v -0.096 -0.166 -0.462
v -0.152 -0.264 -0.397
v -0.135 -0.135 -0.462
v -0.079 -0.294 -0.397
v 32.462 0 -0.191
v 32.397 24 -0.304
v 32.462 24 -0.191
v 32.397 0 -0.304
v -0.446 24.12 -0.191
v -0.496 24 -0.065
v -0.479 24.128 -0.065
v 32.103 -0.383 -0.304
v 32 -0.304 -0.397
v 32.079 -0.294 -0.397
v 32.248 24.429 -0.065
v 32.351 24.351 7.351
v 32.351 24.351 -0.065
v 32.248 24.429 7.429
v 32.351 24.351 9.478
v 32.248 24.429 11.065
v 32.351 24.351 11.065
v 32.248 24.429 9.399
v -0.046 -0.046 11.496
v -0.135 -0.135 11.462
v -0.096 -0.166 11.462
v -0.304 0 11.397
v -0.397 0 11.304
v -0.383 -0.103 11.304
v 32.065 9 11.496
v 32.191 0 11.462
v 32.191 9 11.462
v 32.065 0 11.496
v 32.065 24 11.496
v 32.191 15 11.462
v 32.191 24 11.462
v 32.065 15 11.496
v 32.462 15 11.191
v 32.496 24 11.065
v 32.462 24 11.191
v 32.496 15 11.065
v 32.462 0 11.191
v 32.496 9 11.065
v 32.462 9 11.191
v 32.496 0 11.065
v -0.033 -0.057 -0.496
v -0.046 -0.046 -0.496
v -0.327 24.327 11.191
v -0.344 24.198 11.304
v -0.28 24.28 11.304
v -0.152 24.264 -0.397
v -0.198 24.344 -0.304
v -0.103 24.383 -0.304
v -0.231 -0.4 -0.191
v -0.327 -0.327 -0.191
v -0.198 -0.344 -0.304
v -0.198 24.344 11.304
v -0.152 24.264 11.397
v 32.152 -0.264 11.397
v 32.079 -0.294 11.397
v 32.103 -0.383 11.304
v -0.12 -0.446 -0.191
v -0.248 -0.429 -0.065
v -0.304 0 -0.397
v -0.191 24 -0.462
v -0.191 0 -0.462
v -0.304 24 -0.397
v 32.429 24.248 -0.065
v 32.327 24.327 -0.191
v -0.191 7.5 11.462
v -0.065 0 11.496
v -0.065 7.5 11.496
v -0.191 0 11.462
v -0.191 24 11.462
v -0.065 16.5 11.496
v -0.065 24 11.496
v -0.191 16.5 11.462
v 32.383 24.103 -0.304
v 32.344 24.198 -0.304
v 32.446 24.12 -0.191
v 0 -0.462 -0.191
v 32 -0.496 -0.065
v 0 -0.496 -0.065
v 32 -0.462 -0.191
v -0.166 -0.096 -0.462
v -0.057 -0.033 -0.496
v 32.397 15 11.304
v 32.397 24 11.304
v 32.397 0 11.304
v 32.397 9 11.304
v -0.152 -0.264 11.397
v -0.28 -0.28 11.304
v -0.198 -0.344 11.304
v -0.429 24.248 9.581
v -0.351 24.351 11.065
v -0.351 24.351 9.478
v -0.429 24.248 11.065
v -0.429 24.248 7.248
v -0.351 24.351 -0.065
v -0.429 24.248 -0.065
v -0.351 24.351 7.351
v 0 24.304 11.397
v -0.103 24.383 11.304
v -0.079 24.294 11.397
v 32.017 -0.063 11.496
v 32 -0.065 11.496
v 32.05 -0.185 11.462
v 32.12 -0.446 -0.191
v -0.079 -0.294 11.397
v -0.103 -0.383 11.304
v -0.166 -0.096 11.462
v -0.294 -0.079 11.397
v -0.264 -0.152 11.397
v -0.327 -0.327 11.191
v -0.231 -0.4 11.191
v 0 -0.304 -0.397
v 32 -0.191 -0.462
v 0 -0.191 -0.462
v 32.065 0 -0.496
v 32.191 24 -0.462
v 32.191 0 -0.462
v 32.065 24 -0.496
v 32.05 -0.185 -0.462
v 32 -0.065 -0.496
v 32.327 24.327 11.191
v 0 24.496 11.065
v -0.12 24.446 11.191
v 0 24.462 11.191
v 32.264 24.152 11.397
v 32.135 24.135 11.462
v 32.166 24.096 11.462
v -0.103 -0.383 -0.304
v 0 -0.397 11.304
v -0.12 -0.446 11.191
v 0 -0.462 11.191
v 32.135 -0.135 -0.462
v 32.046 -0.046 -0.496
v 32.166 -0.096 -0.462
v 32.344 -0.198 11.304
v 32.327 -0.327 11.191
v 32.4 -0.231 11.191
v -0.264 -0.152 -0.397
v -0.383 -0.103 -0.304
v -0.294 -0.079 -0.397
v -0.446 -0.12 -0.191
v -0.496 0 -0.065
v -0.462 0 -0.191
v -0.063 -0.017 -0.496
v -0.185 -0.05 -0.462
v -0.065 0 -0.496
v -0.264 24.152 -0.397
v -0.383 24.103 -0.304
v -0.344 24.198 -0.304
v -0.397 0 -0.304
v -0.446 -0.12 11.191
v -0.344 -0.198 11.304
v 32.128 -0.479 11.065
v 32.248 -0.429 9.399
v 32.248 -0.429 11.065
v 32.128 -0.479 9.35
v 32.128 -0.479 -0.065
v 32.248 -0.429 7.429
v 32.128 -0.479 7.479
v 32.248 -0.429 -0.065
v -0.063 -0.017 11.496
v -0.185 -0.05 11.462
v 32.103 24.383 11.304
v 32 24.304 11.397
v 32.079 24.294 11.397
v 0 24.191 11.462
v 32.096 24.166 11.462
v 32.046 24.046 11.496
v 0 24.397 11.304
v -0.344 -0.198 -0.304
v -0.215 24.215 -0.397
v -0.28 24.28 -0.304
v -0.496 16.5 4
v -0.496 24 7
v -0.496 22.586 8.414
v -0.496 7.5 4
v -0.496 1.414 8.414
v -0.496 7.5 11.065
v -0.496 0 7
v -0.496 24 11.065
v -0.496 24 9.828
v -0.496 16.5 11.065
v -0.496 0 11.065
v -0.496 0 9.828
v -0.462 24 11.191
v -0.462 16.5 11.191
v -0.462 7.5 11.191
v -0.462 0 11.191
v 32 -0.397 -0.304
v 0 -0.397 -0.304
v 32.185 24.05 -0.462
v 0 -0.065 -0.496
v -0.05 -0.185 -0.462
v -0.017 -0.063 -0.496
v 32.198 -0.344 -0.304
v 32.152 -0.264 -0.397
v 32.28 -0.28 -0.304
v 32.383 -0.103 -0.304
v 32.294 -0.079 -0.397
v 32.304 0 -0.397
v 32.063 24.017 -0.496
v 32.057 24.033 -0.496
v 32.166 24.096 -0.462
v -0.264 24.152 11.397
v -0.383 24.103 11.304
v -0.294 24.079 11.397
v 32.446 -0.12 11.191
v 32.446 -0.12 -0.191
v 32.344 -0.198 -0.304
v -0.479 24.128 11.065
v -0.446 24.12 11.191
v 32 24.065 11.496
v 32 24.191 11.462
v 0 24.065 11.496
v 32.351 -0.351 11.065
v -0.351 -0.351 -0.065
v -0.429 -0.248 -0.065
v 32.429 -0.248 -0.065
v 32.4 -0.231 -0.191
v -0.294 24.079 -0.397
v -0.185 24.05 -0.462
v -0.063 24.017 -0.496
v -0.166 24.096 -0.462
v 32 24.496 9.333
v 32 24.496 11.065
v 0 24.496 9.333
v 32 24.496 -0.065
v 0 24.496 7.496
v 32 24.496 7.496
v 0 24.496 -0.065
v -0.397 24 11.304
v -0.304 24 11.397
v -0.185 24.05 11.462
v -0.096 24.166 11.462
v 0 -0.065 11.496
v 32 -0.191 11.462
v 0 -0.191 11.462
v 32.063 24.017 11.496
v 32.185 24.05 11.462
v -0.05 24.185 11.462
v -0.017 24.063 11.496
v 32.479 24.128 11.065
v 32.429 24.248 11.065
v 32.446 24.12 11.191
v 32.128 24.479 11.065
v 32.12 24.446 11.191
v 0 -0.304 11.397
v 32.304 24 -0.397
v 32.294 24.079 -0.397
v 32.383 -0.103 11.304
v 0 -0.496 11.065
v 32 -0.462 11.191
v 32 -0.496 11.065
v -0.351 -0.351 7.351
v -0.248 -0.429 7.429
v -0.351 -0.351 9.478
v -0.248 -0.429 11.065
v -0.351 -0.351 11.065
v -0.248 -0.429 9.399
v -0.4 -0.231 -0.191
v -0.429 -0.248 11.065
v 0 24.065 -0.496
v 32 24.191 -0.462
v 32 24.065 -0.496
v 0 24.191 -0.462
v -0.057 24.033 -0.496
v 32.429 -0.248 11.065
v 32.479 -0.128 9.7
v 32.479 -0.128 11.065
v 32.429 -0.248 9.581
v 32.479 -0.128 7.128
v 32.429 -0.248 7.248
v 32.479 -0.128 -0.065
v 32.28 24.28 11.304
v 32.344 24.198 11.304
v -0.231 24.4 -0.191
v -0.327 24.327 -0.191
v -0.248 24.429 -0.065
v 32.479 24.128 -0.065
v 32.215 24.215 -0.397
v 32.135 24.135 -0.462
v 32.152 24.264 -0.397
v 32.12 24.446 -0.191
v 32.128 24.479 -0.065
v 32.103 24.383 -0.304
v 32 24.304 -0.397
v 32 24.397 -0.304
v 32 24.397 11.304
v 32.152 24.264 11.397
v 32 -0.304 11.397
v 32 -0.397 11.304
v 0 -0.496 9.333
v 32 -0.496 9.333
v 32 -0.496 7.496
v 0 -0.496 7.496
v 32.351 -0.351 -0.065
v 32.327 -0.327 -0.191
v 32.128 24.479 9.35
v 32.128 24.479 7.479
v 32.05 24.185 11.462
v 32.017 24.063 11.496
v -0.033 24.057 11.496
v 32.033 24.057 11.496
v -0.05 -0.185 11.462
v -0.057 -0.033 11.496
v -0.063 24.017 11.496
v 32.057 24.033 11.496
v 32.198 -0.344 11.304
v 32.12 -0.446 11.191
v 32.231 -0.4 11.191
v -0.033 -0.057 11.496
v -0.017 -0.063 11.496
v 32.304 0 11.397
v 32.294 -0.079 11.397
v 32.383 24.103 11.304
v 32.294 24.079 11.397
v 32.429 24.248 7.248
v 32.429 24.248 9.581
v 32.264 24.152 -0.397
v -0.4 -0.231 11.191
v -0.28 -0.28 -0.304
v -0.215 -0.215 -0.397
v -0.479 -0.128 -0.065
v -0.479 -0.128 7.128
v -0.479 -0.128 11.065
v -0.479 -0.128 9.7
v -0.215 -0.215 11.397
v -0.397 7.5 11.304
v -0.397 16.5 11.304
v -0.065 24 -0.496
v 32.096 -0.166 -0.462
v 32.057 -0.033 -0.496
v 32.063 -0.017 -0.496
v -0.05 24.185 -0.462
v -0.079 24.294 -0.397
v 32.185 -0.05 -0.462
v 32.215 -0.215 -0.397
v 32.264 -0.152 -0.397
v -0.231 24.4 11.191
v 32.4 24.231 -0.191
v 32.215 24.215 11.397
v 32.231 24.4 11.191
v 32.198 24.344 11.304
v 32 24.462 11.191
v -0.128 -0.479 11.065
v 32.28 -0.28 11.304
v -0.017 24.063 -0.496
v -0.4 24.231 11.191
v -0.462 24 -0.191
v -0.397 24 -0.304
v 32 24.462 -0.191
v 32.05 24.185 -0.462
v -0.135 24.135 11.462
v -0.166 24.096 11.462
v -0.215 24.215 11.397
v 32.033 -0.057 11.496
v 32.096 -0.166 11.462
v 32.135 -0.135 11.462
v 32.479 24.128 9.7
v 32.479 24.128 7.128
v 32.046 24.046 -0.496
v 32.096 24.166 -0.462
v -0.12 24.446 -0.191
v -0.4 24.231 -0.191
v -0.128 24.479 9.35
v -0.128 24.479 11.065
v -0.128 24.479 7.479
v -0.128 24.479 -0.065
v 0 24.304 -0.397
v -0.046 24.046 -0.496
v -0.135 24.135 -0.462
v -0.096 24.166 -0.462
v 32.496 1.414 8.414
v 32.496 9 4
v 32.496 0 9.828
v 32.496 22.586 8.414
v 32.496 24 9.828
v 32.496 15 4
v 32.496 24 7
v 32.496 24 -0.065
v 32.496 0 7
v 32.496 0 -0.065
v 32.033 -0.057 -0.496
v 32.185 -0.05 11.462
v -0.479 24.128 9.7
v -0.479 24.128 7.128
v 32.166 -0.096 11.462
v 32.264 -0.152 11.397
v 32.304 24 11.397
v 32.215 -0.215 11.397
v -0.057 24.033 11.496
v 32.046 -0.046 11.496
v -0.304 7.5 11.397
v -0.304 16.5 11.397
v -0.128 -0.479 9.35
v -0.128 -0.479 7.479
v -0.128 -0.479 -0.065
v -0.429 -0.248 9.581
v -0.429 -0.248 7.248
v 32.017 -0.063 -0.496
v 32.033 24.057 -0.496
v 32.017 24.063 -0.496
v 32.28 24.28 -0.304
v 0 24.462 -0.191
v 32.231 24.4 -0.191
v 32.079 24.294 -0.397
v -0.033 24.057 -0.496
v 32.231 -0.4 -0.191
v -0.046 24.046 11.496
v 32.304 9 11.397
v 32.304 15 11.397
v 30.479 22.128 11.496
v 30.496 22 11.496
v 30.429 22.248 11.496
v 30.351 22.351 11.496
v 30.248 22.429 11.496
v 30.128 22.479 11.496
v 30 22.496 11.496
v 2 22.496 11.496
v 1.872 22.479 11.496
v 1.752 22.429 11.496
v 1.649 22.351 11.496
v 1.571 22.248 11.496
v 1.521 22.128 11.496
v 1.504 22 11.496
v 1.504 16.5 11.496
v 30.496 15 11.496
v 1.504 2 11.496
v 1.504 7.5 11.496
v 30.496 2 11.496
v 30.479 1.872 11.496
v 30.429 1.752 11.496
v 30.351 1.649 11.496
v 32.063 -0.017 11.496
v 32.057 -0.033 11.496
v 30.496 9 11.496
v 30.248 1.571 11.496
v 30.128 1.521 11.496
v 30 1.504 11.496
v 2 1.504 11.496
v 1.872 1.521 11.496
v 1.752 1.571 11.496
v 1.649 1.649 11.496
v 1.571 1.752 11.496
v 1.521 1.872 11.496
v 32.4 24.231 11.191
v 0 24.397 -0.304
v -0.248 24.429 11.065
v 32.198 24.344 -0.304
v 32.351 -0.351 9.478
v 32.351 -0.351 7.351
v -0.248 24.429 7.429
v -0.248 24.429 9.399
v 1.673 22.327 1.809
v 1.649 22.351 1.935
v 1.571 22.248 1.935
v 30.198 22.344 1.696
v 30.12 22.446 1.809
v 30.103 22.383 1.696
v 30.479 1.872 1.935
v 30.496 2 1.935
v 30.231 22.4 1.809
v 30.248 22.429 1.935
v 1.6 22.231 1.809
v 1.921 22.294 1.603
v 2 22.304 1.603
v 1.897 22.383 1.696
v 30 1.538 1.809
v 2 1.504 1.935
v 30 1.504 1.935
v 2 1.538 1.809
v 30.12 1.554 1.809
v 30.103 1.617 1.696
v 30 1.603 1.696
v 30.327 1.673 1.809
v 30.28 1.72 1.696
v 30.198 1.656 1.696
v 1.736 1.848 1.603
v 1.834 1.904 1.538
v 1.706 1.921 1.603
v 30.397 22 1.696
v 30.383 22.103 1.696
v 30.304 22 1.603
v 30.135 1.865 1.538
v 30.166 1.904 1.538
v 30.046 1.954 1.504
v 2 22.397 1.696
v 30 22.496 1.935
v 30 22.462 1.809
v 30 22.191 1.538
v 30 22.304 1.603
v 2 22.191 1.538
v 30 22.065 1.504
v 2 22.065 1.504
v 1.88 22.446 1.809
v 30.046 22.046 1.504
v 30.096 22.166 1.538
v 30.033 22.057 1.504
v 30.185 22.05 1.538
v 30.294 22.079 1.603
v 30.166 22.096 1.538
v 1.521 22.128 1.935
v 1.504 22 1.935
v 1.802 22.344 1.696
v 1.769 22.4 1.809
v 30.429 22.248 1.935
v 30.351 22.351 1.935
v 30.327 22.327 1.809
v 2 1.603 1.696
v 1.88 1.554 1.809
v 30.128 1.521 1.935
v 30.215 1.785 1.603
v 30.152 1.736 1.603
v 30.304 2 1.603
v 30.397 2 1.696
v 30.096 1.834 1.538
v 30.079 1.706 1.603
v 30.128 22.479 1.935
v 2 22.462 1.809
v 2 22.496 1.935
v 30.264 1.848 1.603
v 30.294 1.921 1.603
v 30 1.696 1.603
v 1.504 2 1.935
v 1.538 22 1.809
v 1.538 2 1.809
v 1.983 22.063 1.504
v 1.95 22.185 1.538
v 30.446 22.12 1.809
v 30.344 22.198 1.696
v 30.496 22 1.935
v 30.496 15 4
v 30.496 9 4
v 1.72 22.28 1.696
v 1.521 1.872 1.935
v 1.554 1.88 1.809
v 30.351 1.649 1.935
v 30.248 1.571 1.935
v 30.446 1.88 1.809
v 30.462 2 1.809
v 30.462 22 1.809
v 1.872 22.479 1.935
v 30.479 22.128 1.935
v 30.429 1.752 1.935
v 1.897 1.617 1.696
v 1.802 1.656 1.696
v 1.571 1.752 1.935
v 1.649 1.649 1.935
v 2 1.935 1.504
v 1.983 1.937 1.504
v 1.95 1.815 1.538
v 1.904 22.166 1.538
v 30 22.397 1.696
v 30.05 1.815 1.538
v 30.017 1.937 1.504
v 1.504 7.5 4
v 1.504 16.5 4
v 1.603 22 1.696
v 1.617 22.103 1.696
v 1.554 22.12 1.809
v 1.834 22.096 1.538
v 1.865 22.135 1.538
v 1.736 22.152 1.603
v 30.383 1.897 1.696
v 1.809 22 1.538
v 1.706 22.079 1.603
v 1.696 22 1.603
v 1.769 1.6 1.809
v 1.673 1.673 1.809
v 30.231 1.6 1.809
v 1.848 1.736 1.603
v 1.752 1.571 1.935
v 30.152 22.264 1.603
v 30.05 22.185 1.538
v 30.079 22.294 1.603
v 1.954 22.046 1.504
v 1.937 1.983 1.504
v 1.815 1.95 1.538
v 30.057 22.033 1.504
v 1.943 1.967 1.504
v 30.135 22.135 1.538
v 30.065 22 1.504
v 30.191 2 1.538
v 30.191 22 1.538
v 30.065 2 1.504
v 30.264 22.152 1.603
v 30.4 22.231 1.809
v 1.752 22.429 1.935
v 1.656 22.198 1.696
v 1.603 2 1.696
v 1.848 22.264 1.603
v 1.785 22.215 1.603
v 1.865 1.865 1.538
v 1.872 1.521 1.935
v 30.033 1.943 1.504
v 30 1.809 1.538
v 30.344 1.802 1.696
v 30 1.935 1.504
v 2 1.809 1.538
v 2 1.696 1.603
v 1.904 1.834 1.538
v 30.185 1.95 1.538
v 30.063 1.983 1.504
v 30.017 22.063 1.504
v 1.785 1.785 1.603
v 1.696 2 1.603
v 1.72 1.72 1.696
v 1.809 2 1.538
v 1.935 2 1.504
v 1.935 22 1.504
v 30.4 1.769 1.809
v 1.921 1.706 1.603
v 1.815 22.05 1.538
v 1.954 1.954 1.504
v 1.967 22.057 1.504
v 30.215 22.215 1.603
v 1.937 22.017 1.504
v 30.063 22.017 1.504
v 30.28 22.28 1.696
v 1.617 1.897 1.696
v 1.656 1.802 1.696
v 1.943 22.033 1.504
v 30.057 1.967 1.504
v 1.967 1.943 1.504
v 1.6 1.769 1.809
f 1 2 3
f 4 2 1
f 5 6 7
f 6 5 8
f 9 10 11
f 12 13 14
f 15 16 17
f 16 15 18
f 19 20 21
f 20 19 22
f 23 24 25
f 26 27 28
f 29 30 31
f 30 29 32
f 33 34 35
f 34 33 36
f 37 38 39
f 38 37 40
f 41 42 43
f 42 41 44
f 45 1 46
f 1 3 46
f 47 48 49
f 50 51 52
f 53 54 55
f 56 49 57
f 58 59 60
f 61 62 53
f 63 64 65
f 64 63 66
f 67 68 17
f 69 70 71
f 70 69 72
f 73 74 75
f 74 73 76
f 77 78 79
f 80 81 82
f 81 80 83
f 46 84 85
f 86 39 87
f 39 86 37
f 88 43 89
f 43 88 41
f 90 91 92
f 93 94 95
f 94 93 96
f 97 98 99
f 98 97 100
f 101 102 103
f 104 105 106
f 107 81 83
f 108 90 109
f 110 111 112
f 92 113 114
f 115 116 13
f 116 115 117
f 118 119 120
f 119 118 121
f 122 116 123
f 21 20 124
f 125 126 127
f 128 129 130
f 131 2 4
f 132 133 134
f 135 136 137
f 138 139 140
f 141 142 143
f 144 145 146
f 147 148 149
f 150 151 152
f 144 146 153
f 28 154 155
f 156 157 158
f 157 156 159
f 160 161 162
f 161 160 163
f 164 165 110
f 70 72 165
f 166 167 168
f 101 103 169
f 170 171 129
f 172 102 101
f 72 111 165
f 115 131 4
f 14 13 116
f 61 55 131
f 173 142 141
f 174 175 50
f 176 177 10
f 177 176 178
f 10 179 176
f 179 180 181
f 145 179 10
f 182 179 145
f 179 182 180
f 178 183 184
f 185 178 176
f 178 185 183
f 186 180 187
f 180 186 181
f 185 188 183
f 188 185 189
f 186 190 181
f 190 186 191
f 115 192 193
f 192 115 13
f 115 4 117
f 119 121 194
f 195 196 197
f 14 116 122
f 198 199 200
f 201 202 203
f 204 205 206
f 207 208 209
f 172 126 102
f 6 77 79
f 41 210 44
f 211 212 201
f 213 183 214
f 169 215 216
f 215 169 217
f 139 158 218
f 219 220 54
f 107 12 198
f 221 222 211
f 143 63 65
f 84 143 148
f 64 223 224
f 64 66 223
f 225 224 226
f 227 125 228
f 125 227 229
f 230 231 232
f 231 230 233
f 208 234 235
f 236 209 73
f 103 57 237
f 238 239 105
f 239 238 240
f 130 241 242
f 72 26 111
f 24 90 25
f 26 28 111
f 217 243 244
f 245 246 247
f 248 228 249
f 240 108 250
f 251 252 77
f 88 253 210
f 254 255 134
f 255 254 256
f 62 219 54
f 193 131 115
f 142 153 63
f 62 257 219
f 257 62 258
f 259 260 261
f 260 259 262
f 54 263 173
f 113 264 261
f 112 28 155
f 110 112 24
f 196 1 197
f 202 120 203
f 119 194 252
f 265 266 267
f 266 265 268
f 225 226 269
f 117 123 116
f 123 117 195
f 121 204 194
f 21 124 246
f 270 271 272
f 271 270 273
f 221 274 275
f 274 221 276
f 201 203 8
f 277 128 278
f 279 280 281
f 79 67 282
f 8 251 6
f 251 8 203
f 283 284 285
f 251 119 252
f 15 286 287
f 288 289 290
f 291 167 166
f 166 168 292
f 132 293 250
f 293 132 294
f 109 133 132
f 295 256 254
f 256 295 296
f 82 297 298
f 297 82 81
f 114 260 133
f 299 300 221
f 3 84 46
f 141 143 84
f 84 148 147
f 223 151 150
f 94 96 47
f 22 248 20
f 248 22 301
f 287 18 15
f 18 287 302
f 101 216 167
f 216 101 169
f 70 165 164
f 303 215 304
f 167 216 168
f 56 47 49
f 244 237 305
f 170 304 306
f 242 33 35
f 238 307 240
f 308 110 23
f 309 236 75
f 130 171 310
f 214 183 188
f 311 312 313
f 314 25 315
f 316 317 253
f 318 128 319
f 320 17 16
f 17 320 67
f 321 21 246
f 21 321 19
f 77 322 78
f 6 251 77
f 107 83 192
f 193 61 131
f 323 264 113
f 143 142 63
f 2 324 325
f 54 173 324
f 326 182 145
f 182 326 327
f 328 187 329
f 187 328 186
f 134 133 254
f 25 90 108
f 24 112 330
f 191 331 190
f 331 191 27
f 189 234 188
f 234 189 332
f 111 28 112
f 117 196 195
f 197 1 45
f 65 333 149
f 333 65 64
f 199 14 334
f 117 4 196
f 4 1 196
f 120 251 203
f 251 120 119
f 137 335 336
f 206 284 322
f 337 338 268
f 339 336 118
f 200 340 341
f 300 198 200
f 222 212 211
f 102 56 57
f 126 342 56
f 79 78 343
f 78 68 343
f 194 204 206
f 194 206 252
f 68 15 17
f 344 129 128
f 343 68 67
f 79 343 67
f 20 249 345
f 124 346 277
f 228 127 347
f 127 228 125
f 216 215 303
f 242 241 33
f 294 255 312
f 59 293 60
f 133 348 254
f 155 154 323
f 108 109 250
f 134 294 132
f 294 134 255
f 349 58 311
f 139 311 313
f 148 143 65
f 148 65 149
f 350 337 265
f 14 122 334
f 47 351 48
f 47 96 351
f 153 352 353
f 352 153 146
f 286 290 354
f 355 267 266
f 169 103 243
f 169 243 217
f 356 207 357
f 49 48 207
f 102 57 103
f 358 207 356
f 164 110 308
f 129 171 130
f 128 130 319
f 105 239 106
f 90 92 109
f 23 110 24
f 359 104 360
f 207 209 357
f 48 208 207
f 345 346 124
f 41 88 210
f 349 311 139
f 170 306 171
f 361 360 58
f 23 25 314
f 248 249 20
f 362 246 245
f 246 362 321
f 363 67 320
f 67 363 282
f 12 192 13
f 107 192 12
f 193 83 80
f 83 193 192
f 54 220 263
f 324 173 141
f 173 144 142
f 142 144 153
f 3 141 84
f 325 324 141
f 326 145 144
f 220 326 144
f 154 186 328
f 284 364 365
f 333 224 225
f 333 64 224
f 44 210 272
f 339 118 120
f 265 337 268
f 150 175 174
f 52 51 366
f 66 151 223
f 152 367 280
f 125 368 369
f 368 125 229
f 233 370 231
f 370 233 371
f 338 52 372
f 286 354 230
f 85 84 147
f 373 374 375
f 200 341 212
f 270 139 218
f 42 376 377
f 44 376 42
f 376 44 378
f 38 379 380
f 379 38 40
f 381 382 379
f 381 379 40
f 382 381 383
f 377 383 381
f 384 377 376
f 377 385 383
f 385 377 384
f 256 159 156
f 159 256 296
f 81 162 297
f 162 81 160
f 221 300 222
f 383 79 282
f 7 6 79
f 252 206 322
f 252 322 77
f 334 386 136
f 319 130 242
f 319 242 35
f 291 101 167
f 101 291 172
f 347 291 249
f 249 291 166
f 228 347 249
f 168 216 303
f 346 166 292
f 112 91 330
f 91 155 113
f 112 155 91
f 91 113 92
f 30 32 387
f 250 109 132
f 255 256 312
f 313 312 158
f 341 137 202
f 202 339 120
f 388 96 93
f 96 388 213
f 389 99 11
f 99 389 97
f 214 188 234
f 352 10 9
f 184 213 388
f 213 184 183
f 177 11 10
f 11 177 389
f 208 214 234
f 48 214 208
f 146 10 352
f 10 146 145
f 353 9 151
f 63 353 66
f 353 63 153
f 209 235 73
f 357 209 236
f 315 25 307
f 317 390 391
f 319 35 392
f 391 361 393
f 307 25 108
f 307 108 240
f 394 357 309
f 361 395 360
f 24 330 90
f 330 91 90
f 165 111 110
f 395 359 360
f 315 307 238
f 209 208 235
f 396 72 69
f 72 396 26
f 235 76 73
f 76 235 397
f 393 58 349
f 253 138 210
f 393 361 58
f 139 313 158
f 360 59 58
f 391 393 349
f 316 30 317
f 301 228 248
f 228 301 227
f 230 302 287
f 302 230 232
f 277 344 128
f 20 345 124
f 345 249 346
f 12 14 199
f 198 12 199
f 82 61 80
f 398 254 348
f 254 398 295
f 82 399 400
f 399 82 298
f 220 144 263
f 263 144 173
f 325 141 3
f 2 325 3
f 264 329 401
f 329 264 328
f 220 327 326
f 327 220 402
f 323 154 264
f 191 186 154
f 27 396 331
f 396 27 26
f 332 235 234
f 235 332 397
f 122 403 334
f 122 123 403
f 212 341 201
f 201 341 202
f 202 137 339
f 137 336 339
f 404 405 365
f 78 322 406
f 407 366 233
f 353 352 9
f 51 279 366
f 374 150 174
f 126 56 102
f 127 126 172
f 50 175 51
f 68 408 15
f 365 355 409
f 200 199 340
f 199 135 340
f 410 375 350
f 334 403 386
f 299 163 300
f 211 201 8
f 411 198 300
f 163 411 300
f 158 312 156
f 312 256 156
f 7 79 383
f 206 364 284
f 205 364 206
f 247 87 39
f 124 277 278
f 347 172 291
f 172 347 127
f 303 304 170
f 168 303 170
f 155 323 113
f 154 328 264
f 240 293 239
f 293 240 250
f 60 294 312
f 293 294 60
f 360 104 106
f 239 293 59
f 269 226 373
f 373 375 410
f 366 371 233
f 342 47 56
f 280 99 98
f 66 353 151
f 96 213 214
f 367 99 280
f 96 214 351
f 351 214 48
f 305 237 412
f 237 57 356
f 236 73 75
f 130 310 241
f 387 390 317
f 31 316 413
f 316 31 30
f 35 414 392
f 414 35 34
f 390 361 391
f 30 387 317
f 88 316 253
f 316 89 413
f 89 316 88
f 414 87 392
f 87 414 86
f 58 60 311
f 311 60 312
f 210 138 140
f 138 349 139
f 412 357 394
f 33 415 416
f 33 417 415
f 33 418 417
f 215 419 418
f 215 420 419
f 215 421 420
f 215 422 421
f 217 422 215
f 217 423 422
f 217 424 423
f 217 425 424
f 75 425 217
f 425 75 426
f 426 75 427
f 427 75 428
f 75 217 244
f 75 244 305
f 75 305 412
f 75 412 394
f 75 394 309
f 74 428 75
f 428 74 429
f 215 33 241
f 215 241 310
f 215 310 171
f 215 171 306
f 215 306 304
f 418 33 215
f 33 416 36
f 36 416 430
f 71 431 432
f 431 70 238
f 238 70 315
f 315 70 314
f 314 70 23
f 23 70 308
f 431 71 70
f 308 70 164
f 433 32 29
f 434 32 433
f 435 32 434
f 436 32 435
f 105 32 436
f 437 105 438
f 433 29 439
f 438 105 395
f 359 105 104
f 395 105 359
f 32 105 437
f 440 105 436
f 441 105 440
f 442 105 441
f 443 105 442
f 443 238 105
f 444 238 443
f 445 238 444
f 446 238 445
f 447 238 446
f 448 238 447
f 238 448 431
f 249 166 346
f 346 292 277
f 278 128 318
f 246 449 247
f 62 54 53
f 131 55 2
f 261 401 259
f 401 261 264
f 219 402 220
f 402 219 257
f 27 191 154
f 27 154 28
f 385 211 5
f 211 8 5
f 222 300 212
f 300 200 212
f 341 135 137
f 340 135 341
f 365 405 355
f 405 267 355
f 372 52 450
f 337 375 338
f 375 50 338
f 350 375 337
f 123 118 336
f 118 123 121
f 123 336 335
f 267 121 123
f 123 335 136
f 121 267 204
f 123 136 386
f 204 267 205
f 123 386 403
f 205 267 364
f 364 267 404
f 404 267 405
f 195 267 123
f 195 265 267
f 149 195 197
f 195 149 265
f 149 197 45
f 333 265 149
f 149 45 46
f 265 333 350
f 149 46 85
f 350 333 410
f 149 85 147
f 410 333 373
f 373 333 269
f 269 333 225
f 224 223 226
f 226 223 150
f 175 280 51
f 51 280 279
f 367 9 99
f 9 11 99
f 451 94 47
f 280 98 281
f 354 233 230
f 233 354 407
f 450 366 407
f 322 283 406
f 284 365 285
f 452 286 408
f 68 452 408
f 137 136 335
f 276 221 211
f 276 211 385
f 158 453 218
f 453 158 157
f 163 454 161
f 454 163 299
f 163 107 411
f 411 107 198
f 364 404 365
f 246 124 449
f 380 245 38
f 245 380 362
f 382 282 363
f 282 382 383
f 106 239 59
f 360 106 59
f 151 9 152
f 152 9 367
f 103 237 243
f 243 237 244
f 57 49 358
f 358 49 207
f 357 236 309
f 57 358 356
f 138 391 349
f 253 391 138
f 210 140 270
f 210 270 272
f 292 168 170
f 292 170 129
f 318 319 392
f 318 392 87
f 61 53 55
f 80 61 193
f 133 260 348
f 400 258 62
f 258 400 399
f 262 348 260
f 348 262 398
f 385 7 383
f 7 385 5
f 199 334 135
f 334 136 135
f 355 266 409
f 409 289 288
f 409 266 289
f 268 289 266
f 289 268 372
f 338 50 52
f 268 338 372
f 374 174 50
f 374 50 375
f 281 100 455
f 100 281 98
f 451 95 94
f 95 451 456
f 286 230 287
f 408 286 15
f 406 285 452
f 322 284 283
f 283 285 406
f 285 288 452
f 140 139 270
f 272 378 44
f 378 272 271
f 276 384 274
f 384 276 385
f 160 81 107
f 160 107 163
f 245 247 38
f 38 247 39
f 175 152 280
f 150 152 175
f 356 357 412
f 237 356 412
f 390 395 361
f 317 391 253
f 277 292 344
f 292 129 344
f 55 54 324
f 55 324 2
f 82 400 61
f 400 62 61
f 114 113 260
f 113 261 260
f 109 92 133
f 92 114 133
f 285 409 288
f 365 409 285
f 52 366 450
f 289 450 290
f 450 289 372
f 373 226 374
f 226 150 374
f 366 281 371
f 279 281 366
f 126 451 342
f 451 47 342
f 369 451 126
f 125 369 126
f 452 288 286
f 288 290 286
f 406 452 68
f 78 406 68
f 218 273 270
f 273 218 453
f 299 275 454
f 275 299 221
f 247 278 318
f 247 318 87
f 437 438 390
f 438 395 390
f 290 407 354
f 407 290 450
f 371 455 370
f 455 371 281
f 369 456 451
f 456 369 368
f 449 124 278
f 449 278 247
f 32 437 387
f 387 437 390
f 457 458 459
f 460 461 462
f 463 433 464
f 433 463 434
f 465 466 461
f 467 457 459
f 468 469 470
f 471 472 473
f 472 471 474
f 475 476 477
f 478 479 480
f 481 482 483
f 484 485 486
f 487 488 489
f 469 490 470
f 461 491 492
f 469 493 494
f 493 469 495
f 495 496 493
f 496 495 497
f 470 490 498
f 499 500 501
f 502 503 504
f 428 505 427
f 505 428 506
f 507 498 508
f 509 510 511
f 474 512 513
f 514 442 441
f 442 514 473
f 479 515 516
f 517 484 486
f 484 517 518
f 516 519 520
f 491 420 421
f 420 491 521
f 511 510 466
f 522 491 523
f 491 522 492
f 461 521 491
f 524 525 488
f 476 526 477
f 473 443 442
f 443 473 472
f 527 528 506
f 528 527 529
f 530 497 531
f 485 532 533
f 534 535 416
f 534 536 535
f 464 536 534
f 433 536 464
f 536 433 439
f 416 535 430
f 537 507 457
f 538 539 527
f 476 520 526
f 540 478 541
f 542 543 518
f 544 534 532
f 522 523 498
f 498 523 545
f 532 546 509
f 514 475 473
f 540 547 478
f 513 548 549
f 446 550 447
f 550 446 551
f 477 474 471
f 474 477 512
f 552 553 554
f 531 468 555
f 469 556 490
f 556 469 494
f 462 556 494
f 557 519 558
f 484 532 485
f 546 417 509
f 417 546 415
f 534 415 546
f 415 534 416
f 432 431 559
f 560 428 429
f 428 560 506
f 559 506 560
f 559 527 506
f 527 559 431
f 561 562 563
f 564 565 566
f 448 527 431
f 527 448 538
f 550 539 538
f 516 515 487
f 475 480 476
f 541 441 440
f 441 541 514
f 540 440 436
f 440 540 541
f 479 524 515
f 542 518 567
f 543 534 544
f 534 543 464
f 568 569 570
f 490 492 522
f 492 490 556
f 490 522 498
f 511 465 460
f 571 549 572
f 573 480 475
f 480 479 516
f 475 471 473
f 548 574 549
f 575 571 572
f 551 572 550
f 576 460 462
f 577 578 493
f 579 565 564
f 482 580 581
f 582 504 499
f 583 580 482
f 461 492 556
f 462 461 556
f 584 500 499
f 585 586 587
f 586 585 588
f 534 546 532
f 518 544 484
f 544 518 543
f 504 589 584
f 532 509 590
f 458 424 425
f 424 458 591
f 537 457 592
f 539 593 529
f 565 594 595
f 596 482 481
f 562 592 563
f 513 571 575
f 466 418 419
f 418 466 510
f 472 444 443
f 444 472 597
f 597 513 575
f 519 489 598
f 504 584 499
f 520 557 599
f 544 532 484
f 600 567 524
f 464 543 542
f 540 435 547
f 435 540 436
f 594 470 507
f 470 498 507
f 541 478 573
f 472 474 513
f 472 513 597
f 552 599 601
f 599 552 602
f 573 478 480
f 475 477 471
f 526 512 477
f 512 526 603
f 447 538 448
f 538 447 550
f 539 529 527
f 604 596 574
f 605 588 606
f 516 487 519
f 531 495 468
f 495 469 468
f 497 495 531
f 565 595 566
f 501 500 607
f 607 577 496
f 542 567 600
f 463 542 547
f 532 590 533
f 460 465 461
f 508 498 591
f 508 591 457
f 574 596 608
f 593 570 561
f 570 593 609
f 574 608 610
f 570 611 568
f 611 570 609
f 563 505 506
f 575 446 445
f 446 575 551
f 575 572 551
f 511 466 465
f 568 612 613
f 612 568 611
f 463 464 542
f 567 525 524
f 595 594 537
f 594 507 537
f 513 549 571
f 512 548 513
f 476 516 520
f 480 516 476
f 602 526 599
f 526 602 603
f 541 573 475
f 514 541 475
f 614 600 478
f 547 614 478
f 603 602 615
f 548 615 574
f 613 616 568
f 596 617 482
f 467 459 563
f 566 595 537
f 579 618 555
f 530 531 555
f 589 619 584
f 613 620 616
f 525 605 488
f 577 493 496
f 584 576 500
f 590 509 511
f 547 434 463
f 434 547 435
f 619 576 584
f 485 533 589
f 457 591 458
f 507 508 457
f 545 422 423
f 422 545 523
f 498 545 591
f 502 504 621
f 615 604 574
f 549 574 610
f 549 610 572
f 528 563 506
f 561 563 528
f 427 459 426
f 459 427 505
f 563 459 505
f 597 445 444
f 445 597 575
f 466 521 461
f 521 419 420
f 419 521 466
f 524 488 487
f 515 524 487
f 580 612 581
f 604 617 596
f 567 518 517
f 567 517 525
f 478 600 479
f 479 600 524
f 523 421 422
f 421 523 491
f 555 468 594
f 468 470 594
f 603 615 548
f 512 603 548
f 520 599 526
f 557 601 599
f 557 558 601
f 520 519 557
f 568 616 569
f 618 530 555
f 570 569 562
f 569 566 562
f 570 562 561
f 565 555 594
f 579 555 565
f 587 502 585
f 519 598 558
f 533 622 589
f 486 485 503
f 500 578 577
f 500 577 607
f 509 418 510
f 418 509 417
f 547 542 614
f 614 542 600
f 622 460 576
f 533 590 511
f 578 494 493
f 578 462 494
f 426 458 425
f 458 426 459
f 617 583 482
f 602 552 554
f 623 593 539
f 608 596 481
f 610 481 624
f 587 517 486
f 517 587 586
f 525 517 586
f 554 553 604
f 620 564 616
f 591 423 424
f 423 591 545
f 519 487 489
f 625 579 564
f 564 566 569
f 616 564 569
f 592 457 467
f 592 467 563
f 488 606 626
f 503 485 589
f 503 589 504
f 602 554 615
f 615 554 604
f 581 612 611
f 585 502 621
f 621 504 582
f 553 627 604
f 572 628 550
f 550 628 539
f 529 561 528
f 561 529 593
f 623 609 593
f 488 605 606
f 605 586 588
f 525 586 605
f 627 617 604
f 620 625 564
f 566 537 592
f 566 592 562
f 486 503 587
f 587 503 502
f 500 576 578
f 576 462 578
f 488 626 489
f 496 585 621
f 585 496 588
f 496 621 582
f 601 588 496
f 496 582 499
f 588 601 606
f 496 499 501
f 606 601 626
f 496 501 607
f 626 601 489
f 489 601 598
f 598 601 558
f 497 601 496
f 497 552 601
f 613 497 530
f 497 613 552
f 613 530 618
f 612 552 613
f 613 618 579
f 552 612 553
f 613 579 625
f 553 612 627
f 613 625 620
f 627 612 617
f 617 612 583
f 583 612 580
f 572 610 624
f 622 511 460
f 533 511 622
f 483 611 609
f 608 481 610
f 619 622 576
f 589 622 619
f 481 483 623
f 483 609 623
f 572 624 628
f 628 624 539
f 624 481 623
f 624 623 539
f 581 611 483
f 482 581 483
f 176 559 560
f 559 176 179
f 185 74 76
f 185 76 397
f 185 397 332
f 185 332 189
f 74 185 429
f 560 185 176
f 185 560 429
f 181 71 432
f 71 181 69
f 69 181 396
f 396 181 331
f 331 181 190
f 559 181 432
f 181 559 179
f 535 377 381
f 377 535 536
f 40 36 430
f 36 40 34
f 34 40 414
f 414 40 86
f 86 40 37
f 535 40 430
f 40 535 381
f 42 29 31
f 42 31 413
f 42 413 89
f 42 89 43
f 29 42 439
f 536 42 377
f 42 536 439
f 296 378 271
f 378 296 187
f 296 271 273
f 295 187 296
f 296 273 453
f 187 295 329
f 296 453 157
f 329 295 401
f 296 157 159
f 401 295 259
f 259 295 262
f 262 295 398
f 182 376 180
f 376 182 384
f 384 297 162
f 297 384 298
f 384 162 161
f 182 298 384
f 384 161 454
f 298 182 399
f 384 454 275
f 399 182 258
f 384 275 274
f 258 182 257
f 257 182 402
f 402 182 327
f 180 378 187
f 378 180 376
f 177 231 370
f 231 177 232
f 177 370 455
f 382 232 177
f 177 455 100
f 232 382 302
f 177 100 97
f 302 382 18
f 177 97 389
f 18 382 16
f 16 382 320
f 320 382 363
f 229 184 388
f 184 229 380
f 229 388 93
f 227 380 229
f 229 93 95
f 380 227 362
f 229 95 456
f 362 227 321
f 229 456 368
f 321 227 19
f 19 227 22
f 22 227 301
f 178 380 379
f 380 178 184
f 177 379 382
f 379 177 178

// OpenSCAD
/*
    Box enclosure for EKM-024 USB-C lock module
    Inside: length 28 mm, width 20 mm, height 10 mm
    Wall thickness: 2 mm
    @mirontoli 2026-01-02
*/

inner_length = 28;
inner_width  = 20;
inner_height = 10;
inner = [inner_length, inner_width, inner_height];
wall = 2;
pcb_thickness = 2;


outer = [inner_length + 2*wall, inner_width + 2*wall, inner_height + wall -1];
// USB-C opening on one short side
usb_width = 9; // opening width in mm
usb_y = outer[1]/2 - usb_width/2; // centered along the short axis
cutout_usb = [wall+2, usb_width, inner_height+1];

screw_header_width = 6;
screw_header_y = outer[1]/2 - screw_header_width/2;
cutout_screw = [wall+2, screw_header_width, inner_height+1];

corner_radius = 0.5; // adjust; must be < min(outer)/2

module rounded_box(size, r=1.5, fn=24) {
    // size = [x,y,z]. final bbox == size
    minkowski() {
        cube([size[0]-2*r, size[1]-2*r, size[2]-2*r], center = false);
        sphere(r = r, $fn = fn);
    }
}

// ...existing code...
// replace the outer cube() with a hull-based outer to get rounded corners
module hull_box(size, r=0.5, fn=24) {
    hull() {
        for (x=[0, size[0]])
            for (y=[0, size[1]])
                for (z=[0, size[2]])
                    translate([x,y,z]) sphere(r=r, $fn=fn);
    }
}

// the rail to connect the lock
module rail() {
    rotate([45,0,0])
        cube([outer[0]+2, 2, 2], center = false);
}

difference() {
    // outer shell
    //cube(outer, center = false);
    //rounded_box(outer, r = corner_radius);
    hull_box(outer, r = corner_radius);
    // inner cavity (translated up by wall thickness to create bottom)
    translate([wall, wall, wall])
        //cube(inner, center = false);
        hull_box(inner, r = corner_radius);
    // cut a rectangular opening on one short side (front at y=0)
    // depth: reach through outer wall into inner cavity but not across entire width
    translate([-1, usb_y, wall + pcb_thickness])   
        cube(cutout_usb, center = false);
    // cut out a rectangular opening on the opposite short side for output cables
    translate([outer[0]- wall- 1, screw_header_y, wall + pcb_thickness])
        cube(cutout_screw, center = false);
    // cut out the rail slot on top
    translate([-1, 0, outer[2]-4])
        rail();
    // cut out the rail slot on top
    translate([-1, outer[1], outer[2]-4])
        rail();
}
